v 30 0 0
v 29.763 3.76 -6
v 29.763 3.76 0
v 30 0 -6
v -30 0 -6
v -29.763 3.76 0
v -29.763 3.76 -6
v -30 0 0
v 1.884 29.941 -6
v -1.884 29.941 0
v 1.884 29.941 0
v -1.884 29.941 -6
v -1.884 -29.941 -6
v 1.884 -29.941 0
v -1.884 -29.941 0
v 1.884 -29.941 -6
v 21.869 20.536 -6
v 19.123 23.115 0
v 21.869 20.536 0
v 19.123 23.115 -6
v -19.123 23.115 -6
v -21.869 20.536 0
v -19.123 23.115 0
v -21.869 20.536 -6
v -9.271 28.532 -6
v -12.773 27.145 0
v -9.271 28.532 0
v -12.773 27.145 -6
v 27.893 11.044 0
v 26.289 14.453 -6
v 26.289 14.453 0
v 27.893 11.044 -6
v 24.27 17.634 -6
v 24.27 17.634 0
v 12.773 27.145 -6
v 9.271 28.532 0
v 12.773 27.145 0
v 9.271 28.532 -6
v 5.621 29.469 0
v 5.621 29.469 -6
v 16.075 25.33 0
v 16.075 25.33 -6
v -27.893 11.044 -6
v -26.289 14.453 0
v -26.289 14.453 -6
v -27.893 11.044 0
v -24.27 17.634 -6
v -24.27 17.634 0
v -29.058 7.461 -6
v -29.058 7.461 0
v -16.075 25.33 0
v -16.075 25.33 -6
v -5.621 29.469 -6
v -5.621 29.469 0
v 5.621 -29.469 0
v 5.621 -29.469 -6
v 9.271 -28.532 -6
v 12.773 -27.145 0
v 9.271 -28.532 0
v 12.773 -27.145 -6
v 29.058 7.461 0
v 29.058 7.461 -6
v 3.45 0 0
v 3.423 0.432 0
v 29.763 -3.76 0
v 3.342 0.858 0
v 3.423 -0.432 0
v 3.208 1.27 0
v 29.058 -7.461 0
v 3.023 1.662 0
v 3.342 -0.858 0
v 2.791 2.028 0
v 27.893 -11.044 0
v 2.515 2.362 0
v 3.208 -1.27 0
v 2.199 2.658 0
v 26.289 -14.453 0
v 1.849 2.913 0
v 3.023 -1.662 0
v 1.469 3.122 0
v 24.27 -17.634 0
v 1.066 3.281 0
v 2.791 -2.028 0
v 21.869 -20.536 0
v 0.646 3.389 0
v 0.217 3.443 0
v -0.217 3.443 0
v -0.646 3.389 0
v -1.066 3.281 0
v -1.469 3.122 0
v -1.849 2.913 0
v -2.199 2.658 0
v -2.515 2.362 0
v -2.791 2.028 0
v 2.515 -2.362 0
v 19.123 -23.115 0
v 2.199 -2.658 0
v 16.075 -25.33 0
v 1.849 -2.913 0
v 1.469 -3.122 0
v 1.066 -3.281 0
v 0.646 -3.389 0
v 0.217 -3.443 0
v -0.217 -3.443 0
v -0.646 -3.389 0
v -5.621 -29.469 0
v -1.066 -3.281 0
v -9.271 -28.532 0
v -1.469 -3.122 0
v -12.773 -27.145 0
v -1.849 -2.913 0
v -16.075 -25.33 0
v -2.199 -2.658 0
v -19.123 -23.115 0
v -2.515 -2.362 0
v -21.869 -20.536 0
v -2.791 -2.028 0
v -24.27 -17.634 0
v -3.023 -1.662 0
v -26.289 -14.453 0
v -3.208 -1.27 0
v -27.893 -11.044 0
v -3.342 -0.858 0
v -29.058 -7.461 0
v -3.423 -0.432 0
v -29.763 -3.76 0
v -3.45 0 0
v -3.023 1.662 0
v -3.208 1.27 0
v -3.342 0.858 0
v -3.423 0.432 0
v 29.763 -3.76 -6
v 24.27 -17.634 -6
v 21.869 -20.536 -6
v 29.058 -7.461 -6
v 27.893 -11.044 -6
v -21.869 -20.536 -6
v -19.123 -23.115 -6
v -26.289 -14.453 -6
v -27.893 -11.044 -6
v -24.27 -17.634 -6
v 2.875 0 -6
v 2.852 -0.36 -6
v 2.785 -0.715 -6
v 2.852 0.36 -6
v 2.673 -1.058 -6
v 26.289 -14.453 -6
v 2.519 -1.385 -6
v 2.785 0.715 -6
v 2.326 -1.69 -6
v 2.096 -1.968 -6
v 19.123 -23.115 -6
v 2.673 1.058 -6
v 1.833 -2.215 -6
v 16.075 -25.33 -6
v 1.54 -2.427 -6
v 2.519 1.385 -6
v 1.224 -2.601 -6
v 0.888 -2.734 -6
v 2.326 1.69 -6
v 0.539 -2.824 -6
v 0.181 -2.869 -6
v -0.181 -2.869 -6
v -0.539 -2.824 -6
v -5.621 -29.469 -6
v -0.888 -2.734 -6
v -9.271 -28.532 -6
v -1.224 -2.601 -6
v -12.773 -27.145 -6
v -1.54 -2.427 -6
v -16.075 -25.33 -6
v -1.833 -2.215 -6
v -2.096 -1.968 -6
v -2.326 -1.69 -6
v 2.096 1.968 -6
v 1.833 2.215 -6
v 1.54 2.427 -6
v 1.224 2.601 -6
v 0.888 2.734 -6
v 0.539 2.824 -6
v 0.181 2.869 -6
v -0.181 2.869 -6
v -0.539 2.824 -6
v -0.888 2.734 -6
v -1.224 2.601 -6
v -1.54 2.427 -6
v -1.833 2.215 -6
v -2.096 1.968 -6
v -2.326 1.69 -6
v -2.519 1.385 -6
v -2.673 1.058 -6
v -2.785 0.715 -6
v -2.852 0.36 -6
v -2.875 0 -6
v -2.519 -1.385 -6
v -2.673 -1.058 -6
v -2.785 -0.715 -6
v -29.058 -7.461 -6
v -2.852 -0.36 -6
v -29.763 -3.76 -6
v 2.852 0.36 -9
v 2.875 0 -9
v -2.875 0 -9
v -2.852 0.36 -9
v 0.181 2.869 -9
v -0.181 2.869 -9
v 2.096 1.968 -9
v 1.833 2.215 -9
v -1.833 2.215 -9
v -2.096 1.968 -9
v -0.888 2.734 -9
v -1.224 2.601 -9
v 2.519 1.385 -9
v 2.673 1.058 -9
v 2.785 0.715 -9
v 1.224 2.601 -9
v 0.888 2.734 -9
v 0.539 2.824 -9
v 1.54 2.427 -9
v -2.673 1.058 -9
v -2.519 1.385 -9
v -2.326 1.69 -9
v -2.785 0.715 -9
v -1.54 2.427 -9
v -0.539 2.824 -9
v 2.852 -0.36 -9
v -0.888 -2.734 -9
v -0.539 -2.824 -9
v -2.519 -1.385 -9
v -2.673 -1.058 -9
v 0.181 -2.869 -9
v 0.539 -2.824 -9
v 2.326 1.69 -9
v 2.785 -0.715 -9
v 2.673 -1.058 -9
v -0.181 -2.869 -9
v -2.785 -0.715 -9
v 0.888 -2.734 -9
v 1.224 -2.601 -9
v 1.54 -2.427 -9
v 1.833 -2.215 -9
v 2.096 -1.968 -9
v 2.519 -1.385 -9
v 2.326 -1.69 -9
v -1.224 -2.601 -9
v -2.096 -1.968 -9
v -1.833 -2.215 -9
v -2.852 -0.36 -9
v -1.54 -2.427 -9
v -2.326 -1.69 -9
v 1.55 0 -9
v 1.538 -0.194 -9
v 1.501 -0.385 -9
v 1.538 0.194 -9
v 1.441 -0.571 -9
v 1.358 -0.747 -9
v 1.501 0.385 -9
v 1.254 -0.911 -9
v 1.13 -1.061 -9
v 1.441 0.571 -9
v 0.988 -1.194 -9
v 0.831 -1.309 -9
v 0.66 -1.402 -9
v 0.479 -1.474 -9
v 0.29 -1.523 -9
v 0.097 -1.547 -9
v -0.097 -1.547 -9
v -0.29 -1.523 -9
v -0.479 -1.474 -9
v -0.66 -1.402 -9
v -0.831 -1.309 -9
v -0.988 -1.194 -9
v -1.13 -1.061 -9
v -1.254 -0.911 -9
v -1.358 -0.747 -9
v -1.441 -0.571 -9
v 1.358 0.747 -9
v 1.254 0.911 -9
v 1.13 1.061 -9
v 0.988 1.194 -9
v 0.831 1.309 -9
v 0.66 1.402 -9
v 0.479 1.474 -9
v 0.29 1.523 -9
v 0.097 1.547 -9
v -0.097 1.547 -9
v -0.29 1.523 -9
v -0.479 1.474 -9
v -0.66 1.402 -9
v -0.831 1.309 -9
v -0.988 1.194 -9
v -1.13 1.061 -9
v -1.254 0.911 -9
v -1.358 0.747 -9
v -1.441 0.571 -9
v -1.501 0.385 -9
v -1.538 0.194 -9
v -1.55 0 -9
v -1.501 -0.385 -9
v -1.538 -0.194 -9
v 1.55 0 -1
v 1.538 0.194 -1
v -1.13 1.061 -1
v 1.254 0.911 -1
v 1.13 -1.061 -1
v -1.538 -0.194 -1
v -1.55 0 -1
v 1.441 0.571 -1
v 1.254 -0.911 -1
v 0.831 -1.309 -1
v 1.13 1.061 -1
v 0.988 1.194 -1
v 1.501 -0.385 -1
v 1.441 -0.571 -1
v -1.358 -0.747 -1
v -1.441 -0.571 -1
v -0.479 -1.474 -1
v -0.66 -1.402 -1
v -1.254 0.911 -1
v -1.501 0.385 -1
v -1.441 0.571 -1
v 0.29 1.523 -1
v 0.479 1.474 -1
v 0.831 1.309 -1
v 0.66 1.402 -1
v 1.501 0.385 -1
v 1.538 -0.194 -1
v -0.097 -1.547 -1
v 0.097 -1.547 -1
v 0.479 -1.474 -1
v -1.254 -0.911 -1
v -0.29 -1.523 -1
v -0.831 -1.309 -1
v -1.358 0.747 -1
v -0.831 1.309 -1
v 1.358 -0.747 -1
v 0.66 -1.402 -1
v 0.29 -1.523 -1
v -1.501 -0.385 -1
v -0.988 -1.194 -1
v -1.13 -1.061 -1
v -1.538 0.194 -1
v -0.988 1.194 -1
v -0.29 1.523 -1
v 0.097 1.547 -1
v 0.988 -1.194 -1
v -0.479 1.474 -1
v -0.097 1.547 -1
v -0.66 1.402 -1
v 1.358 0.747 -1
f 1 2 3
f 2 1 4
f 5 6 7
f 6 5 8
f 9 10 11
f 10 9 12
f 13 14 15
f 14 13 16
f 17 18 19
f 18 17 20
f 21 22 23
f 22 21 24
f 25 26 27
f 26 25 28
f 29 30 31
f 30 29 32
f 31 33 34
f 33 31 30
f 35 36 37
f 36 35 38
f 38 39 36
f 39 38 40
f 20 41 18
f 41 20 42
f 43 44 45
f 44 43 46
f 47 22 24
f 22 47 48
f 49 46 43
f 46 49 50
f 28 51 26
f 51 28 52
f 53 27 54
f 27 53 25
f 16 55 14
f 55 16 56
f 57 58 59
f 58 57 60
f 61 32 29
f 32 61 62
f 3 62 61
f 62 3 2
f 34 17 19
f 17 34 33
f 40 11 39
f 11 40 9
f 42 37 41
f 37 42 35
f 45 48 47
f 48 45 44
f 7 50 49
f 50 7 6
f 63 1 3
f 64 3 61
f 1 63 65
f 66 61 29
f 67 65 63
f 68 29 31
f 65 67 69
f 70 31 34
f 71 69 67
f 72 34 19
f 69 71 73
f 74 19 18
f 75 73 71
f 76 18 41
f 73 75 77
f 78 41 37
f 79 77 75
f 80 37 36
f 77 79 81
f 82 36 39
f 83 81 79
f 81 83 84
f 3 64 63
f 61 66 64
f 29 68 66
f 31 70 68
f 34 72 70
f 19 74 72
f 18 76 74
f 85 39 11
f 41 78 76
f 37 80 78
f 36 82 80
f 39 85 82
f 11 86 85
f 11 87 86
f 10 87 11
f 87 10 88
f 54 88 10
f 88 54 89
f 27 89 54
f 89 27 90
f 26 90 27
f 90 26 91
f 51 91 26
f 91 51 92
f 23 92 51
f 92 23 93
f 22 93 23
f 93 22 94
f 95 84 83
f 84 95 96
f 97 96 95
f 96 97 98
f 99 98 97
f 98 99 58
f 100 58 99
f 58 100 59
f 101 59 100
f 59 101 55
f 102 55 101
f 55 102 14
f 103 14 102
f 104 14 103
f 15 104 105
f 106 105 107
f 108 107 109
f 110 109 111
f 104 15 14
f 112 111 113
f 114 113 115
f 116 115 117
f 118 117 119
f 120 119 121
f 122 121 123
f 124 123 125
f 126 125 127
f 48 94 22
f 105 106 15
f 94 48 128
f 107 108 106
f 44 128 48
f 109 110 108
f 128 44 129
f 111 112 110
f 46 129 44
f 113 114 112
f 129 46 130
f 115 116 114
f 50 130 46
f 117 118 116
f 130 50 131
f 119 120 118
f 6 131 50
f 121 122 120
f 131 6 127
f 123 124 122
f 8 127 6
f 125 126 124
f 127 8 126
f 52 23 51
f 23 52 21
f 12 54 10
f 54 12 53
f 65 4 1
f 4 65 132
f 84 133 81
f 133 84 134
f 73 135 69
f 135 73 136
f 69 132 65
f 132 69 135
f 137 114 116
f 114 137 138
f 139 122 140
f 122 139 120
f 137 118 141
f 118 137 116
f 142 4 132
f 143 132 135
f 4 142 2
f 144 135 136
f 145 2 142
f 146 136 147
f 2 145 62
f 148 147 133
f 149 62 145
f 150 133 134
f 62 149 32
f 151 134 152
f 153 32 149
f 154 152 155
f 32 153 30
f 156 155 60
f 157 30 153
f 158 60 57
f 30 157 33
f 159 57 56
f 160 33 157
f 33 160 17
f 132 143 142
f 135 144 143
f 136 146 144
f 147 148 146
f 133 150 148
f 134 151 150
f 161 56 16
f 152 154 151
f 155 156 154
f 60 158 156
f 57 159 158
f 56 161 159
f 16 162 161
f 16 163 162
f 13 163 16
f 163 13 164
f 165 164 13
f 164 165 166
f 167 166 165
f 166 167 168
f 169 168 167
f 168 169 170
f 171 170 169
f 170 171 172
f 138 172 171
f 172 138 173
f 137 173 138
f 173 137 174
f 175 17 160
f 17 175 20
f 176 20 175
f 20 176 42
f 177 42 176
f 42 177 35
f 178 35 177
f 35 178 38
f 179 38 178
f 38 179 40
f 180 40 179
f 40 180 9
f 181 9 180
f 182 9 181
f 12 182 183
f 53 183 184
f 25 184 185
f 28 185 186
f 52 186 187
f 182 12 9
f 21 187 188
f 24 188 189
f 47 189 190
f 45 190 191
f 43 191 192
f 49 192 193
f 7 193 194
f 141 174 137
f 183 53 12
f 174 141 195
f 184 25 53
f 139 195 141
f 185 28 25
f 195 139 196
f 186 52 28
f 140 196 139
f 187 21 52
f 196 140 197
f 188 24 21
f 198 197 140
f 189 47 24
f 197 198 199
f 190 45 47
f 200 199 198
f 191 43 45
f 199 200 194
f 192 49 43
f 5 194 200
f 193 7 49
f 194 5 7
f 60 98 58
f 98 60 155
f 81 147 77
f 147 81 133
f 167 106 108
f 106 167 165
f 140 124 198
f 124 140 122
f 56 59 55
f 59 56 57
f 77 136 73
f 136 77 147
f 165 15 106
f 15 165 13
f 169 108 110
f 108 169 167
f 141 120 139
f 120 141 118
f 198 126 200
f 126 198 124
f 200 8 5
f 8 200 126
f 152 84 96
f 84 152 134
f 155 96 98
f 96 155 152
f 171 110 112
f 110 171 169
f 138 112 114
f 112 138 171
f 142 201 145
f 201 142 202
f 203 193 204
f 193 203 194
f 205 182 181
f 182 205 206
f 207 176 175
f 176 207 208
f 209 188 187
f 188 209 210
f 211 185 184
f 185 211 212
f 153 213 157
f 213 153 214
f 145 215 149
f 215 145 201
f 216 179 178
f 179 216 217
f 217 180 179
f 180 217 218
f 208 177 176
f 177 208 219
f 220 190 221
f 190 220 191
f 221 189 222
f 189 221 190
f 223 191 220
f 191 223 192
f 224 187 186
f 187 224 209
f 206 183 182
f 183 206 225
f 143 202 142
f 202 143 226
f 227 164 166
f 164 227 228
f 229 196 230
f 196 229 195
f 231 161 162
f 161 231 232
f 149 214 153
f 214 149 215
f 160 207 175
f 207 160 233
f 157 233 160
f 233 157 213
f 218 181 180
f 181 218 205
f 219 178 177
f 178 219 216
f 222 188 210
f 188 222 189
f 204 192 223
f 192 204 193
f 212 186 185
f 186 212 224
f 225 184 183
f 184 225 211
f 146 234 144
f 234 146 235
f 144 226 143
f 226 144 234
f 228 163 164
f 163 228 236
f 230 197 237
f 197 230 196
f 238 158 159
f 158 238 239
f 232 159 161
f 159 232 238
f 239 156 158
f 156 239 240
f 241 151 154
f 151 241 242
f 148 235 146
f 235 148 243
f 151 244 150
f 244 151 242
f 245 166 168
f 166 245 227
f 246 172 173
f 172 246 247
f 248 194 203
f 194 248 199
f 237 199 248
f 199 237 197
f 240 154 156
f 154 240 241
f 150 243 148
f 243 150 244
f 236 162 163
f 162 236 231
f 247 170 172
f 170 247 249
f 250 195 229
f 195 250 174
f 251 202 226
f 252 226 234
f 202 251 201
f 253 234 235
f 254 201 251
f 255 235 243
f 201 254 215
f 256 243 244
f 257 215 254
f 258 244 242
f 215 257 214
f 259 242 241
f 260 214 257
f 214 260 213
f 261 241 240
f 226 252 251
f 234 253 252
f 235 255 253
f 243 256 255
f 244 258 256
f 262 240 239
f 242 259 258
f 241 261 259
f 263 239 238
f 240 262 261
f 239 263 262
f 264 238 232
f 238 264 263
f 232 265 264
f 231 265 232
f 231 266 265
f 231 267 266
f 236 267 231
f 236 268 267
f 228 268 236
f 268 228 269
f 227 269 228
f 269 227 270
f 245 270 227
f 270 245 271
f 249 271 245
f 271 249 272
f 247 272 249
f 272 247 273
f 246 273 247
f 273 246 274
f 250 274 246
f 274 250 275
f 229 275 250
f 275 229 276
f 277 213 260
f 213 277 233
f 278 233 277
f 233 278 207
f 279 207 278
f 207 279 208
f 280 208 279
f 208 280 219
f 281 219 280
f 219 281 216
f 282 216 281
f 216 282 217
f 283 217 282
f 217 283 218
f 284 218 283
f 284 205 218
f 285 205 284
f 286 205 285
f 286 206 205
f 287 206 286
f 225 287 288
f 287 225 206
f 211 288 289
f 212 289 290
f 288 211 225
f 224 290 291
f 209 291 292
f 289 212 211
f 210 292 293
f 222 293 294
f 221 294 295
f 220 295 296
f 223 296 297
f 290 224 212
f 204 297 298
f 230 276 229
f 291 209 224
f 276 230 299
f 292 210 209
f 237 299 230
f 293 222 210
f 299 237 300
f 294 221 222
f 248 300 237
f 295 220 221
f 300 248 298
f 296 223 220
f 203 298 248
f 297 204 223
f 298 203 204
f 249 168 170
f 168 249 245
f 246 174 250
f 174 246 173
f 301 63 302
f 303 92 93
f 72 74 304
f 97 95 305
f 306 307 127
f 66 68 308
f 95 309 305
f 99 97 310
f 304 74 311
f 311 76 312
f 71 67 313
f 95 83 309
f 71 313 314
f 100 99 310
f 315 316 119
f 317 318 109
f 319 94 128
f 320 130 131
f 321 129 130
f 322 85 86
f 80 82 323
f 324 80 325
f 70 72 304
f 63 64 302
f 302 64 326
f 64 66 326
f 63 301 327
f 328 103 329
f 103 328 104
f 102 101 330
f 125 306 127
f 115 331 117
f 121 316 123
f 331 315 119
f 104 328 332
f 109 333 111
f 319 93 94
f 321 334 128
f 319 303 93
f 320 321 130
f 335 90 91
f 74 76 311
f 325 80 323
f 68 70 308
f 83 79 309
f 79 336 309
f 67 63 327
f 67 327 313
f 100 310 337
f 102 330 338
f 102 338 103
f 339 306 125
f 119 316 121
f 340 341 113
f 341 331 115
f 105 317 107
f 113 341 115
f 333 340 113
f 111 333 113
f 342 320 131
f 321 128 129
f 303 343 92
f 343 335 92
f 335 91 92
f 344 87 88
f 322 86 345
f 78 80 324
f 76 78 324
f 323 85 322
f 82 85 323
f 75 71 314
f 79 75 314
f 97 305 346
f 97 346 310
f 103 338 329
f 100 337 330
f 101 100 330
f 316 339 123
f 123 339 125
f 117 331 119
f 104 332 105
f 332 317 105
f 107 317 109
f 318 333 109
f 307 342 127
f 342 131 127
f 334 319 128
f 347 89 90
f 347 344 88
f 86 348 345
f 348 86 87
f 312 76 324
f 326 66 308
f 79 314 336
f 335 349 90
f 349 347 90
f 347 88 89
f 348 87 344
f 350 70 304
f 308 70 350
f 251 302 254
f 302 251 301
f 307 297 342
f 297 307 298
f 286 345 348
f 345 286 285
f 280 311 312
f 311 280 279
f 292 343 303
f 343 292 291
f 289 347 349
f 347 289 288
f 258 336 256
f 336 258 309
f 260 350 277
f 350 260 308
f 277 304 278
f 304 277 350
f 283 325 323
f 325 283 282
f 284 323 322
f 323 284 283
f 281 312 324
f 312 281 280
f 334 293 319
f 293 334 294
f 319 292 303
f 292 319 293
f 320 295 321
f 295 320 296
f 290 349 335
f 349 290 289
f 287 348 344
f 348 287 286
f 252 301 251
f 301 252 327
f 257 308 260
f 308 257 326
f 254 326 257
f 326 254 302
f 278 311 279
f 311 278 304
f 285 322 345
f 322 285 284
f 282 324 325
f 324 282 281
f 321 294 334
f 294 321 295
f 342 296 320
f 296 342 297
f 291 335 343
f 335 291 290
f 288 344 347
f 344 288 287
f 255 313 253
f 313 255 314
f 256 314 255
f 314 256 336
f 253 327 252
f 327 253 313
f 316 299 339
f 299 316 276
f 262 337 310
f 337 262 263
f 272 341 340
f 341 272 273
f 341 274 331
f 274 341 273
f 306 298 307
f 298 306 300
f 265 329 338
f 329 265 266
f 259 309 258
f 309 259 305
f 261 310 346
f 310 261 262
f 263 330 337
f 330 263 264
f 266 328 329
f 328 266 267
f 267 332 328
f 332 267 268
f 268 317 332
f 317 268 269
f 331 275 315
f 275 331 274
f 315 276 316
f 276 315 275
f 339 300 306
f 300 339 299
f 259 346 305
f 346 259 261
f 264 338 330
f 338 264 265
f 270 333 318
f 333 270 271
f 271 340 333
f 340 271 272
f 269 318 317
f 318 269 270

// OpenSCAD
$fn = 50;

difference() {
	union() {
		translate(v = [0, 0, -6.0]) {
			cylinder(h = 6, r = 30.0);
		}
		#translate(v = [0, 0, -9.0]) {
			cylinder(h = 9, r = 2.875);
		}
	}
	union() {
		translate(v = [0, 0, 0]) {
			rotate(a = [0, 0, 0]) {
				difference() {
					union() {
						translate(v = [0, 0, -9.0]) {
							cylinder(h = 9, r = 1.25);
						}
						translate(v = [0, 0, -1.0]) {
							cylinder(h = 1.0, r1 = 1.55, r2 = 3.45);
						}
						translate(v = [0, 0, -9.0]) {
							cylinder(h = 9, r = 1.55);
						}
						translate(v = [0, 0, -9.0]) {
							cylinder(h = 9, r = 1.25);
						}
					}
					union();
				}
			}
		}
	}
}
